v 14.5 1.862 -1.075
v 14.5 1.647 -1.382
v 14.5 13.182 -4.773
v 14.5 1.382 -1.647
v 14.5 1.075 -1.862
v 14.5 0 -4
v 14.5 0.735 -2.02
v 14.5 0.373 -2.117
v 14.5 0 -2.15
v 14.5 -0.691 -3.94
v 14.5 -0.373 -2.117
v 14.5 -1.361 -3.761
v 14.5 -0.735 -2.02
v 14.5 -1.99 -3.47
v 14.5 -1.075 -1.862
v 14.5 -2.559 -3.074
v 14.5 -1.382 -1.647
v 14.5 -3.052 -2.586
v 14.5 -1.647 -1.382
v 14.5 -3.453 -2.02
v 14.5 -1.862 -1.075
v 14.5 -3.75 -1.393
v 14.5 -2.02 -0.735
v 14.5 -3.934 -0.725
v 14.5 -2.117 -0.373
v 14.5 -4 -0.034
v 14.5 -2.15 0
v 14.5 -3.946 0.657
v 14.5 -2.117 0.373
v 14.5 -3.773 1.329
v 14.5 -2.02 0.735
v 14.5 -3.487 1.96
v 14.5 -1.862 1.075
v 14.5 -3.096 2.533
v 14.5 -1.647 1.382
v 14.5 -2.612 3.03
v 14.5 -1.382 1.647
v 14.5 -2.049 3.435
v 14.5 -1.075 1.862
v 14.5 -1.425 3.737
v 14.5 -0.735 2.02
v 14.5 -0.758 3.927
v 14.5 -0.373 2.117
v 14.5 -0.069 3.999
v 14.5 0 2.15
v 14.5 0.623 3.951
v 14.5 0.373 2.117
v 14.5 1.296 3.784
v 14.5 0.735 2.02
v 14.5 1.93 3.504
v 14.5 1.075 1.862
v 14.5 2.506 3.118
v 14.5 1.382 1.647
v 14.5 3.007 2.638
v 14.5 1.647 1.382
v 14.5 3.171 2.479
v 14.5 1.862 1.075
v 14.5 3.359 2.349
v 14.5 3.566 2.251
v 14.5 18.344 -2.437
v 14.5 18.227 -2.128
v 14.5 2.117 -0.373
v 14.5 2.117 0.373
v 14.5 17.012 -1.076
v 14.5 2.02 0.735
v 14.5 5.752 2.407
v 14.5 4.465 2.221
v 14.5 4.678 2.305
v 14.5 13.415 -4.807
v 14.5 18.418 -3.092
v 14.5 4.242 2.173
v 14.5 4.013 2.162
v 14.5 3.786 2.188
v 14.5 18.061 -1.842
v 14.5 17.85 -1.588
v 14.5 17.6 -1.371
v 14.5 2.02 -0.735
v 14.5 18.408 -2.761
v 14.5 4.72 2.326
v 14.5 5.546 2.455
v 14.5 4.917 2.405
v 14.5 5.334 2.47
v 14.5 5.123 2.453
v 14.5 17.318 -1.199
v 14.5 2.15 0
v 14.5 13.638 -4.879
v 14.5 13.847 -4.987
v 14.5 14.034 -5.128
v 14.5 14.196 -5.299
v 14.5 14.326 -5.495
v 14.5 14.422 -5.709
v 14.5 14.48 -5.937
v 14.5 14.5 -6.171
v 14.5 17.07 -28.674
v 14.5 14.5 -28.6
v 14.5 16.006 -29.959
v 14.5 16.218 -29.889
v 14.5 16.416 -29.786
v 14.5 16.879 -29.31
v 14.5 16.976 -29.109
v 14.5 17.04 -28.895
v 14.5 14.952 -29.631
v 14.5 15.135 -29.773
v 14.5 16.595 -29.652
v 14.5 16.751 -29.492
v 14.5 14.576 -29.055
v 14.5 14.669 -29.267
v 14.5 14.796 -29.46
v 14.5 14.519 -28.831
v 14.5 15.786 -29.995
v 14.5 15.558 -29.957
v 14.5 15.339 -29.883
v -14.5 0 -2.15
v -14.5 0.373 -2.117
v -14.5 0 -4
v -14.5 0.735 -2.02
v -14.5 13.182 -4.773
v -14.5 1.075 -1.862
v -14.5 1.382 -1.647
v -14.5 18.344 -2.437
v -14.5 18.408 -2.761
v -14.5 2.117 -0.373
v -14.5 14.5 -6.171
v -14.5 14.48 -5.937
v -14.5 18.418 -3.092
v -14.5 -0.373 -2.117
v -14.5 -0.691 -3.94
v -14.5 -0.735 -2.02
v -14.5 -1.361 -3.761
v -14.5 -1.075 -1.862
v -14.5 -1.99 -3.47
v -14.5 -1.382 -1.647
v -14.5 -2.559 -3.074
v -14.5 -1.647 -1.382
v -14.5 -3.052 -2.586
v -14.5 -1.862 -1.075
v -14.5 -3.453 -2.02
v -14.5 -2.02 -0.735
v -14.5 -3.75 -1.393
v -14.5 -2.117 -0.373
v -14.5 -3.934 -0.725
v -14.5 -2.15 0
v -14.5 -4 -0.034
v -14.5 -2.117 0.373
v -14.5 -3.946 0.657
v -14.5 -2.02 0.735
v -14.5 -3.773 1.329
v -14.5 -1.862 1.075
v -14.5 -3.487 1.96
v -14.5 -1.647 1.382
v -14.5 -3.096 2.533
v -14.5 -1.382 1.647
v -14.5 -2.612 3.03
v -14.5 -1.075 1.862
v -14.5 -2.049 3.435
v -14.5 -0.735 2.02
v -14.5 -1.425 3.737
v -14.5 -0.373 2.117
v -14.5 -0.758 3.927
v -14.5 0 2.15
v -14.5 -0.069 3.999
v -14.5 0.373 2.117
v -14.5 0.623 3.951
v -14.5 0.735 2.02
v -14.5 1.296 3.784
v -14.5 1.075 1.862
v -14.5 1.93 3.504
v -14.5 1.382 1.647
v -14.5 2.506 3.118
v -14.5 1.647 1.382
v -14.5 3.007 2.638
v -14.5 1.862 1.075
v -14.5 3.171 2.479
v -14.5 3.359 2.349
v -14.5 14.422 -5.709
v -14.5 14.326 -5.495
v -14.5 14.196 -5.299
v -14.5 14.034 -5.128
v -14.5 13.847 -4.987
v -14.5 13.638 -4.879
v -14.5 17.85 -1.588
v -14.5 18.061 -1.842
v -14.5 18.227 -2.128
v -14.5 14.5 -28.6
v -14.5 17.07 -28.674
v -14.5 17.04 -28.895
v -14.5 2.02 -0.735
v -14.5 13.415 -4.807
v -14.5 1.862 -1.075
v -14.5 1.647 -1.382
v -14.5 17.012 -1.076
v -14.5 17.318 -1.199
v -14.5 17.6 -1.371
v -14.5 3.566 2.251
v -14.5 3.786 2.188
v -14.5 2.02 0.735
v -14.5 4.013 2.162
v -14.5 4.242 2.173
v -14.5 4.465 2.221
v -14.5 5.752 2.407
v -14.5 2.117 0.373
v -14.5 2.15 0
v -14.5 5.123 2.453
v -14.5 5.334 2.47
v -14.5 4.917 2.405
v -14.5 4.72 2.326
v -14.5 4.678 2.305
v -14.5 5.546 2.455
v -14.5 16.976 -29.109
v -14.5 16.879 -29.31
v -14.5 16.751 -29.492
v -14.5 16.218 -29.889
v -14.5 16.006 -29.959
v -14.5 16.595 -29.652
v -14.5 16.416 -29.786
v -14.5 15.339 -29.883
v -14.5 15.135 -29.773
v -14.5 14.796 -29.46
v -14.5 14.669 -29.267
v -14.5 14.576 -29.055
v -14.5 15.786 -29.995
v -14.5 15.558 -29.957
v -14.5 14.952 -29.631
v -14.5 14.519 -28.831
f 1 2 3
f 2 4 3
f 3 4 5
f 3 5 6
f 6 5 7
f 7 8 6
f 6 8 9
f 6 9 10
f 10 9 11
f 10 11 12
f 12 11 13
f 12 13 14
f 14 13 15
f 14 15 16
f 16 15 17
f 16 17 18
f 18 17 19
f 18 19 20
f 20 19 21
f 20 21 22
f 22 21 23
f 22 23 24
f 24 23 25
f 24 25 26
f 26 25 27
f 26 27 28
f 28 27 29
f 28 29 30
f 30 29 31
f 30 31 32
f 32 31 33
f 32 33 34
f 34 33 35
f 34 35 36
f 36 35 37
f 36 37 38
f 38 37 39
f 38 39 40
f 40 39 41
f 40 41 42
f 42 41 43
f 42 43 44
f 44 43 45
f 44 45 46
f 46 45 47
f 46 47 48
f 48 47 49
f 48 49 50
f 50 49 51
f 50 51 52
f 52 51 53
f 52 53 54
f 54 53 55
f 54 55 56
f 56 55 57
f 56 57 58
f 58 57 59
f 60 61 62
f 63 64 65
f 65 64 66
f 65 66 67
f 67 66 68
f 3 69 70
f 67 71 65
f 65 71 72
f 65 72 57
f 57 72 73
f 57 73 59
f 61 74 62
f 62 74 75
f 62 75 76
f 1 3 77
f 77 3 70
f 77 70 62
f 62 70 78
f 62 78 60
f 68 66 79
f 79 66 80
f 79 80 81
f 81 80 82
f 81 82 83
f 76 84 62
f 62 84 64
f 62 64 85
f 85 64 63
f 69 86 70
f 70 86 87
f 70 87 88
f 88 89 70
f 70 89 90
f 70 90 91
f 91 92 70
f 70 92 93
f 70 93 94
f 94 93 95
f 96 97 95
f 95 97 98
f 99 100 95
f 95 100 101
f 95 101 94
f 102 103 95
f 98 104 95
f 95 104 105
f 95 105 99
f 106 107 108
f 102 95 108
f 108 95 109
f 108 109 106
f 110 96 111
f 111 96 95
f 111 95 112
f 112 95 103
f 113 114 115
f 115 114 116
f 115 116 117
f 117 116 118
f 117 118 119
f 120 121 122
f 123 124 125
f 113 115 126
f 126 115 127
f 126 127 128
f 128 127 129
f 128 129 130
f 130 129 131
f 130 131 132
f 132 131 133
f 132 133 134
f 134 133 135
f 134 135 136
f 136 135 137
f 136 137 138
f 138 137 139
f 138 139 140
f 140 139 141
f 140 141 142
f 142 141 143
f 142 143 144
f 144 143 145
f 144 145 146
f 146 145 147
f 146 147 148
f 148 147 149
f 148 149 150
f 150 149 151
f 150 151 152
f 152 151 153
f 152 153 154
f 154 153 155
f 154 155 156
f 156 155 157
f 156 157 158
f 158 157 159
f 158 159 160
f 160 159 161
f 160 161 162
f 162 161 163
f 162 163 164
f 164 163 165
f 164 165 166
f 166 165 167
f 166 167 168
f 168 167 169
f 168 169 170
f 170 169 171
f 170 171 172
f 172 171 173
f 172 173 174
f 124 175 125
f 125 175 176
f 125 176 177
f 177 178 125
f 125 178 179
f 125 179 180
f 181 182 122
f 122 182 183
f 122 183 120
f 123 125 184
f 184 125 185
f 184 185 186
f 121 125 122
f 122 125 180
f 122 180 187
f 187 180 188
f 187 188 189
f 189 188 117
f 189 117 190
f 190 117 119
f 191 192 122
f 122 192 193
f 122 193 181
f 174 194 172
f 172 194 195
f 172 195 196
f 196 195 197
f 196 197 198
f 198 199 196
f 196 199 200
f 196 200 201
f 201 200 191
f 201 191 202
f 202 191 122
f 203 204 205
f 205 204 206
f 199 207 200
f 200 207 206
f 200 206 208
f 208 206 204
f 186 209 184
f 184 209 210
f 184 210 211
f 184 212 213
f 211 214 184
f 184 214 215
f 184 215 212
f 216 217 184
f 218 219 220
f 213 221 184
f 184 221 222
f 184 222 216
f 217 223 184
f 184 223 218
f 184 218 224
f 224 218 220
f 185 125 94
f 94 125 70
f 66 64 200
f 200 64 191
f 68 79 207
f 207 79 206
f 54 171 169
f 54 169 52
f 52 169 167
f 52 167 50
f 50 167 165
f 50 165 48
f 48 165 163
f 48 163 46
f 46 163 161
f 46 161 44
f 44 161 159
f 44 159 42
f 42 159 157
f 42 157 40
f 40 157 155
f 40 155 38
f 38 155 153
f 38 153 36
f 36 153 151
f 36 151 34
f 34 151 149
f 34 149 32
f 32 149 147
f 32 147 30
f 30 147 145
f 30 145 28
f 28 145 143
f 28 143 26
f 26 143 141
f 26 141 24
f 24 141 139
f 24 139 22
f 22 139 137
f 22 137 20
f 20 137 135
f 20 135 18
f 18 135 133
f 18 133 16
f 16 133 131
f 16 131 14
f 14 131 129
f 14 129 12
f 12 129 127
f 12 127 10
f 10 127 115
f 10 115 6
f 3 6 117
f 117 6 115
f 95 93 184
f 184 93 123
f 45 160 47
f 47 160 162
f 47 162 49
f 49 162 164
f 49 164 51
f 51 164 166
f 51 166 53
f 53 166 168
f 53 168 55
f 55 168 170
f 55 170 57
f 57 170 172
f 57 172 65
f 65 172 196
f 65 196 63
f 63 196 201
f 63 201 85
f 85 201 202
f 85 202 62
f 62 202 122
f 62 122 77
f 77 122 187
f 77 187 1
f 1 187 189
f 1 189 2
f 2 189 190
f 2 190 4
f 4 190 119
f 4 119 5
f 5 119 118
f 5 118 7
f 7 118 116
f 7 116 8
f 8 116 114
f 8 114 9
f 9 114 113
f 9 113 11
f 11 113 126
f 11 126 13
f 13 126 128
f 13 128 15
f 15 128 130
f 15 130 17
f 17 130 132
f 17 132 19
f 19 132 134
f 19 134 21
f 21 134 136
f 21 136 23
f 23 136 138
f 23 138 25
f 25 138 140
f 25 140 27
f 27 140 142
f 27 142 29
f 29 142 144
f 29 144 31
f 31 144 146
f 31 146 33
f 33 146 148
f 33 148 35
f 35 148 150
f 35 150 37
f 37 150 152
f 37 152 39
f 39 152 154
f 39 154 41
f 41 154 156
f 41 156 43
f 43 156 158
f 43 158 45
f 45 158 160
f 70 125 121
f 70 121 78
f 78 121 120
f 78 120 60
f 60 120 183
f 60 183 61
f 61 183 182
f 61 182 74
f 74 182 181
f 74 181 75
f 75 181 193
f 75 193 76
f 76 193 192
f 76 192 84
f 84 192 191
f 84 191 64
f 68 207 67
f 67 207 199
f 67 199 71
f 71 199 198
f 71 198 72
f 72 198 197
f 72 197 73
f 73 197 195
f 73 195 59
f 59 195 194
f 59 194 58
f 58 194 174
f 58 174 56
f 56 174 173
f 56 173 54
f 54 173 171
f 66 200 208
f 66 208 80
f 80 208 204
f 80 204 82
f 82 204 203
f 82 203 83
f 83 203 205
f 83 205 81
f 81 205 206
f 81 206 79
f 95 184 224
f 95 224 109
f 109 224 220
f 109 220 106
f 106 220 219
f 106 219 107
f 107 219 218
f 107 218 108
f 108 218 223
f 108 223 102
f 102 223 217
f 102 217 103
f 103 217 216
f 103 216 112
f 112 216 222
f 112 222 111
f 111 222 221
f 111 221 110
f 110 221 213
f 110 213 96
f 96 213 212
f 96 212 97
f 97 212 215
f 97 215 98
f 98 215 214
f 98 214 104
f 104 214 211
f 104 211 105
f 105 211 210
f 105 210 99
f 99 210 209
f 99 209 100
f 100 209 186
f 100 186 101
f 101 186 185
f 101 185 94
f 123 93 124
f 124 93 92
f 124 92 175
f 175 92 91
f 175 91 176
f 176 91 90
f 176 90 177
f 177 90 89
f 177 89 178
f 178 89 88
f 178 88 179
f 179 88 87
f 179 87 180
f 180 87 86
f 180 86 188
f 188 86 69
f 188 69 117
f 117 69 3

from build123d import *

# Parameters (mm, degrees)
SKETCH1_R           = 2.15
BOSS_EXTRUDE1_DEPTH = 14.5
FILLET1_R           = 2
FILLET2_R           = 1.4


with BuildPart() as part:
    # Sketch1 → Boss-Extrude1 (new, symmetric)
    with BuildSketch(Plane(origin=(0, 0, 0), x_dir=(0, 0, -1), z_dir=(1, 0, 0))):
        with BuildLine():
            Line((1.535973194, 18.500000001), (-2.572234834, 5.219922296))
            Line((-2.572234834, 5.219922296), (-1.768078738, 3.588021398))
            ThreePointArc((-1.768078738, 3.588021398), (-2.112780753, -3.396491935), (3.999999997, 1e-09))
            Line((3.999999997, 1e-09), (4.821445035, 14.000000001))
            Line((4.821445035, 14.000000001), (4.821445035, 14.500000001))
            Line((4.821445035, 14.500000001), (26.520495385, 14.500000001))
            Line((26.520495385, 14.500000001), (30.000000003, 14.500000001))
            Line((30.000000003, 14.500000001), (30.000000003, 17.000000001))
            Line((30.000000003, 17.000000001), (1.535973194, 18.500000001))
        make_face()
        with Locations(Location((0, 0, 0), (0, 0, 180))):
            Circle(SKETCH1_R, mode=Mode.SUBTRACT)
    extrude(amount=BOSS_EXTRUDE1_DEPTH, both=True)

    # Fillet1
    fillet1_edges = [part.edges().sort_by_distance(p)[0] for p in [
        (0, 18.500000001, -1.535973194),
    ]]
    fillet(fillet1_edges, radius=FILLET1_R)

    # Fillet2
    fillet2_edges = [part.edges().sort_by_distance(p)[0] for p in [
        (0, 3.588021398, 1.768078738),
        (0, 14.500000001, -4.821445035),
    ]]
    fillet(fillet2_edges, radius=FILLET2_R)
    # the kernel refuses this fillet: 1.4 mm, written as the material it takes off along each edge
    with BuildSketch(Plane(origin=(-15.893609334, 5.219922296, 2.572234834), x_dir=(0, -0.8970053501938902, -0.442019684769283), z_dir=(1, 0, 0))) as fillet2_2_piece_1:
        with BuildLine():
            CenterArc((FILLET2_R * 0.398174095356, FILLET2_R), FILLET2_R, 226.577668017, 43.422331983)
            Line((-FILLET2_R * 0.289196557818, FILLET2_R * 0.273693188002), (-FILLET2_R * 0.302943970882, FILLET2_R * 0.259167051762))
            Line((-FILLET2_R * 0.302943970882, FILLET2_R * 0.259167051762), (-FILLET2_R * 0.00796348190712, -FILLET2_R * 0.02))
            Line((-FILLET2_R * 0.00796348190712, -FILLET2_R * 0.02), (FILLET2_R * 0.398174095356, -FILLET2_R * 0.02))
            Line((FILLET2_R * 0.398174095356, -FILLET2_R * 0.02), (FILLET2_R * 0.398174095356, 0))
        make_face()
    extrude(amount=31.787218667, mode=Mode.SUBTRACT)
    with BuildSketch(Plane(origin=(17.820413203, 17.000000001, -30.000000003), x_dir=(0, 0.05262507378866547, 0.9986143407786299), z_dir=(-1, 0, 0))) as fillet2_2_piece_2:
        with BuildLine():
            CenterArc((FILLET2_R * 0.948689486547, -FILLET2_R), FILLET2_R, 90, 86.983411926)
            Line((-FILLET2_R * 0.049924854232, -FILLET2_R * 0.947374926211), (-FILLET2_R * 0.0698971410476, -FILLET2_R * 0.946322424736))
            Line((-FILLET2_R * 0.0698971410476, -FILLET2_R * 0.946322424736), (-FILLET2_R * 0.0189737897309, FILLET2_R * 0.02))
            Line((-FILLET2_R * 0.0189737897309, FILLET2_R * 0.02), (FILLET2_R * 0.948689486547, FILLET2_R * 0.02))
            Line((FILLET2_R * 0.948689486547, FILLET2_R * 0.02), (FILLET2_R * 0.948689486547, 0))
        make_face()
    extrude(amount=35.640826406, mode=Mode.SUBTRACT)
    with BuildSketch(Plane(origin=(18, 14.500000001, -30.000000003), x_dir=(0, 1, 0), z_dir=(-1, 0, 0))) as fillet2_2_piece_3:
        with BuildLine():
            CenterArc((FILLET2_R, -FILLET2_R), FILLET2_R, 90, 90)
            Line((0, -FILLET2_R), (-FILLET2_R * 0.02, -FILLET2_R))
            Line((-FILLET2_R * 0.02, -FILLET2_R), (-FILLET2_R * 0.02, FILLET2_R * 0.02))
            Line((-FILLET2_R * 0.02, FILLET2_R * 0.02), (FILLET2_R, FILLET2_R * 0.02))
            Line((FILLET2_R, FILLET2_R * 0.02), (FILLET2_R, 0))
        make_face()
    extrude(amount=36, mode=Mode.SUBTRACT)


solid = part.part
